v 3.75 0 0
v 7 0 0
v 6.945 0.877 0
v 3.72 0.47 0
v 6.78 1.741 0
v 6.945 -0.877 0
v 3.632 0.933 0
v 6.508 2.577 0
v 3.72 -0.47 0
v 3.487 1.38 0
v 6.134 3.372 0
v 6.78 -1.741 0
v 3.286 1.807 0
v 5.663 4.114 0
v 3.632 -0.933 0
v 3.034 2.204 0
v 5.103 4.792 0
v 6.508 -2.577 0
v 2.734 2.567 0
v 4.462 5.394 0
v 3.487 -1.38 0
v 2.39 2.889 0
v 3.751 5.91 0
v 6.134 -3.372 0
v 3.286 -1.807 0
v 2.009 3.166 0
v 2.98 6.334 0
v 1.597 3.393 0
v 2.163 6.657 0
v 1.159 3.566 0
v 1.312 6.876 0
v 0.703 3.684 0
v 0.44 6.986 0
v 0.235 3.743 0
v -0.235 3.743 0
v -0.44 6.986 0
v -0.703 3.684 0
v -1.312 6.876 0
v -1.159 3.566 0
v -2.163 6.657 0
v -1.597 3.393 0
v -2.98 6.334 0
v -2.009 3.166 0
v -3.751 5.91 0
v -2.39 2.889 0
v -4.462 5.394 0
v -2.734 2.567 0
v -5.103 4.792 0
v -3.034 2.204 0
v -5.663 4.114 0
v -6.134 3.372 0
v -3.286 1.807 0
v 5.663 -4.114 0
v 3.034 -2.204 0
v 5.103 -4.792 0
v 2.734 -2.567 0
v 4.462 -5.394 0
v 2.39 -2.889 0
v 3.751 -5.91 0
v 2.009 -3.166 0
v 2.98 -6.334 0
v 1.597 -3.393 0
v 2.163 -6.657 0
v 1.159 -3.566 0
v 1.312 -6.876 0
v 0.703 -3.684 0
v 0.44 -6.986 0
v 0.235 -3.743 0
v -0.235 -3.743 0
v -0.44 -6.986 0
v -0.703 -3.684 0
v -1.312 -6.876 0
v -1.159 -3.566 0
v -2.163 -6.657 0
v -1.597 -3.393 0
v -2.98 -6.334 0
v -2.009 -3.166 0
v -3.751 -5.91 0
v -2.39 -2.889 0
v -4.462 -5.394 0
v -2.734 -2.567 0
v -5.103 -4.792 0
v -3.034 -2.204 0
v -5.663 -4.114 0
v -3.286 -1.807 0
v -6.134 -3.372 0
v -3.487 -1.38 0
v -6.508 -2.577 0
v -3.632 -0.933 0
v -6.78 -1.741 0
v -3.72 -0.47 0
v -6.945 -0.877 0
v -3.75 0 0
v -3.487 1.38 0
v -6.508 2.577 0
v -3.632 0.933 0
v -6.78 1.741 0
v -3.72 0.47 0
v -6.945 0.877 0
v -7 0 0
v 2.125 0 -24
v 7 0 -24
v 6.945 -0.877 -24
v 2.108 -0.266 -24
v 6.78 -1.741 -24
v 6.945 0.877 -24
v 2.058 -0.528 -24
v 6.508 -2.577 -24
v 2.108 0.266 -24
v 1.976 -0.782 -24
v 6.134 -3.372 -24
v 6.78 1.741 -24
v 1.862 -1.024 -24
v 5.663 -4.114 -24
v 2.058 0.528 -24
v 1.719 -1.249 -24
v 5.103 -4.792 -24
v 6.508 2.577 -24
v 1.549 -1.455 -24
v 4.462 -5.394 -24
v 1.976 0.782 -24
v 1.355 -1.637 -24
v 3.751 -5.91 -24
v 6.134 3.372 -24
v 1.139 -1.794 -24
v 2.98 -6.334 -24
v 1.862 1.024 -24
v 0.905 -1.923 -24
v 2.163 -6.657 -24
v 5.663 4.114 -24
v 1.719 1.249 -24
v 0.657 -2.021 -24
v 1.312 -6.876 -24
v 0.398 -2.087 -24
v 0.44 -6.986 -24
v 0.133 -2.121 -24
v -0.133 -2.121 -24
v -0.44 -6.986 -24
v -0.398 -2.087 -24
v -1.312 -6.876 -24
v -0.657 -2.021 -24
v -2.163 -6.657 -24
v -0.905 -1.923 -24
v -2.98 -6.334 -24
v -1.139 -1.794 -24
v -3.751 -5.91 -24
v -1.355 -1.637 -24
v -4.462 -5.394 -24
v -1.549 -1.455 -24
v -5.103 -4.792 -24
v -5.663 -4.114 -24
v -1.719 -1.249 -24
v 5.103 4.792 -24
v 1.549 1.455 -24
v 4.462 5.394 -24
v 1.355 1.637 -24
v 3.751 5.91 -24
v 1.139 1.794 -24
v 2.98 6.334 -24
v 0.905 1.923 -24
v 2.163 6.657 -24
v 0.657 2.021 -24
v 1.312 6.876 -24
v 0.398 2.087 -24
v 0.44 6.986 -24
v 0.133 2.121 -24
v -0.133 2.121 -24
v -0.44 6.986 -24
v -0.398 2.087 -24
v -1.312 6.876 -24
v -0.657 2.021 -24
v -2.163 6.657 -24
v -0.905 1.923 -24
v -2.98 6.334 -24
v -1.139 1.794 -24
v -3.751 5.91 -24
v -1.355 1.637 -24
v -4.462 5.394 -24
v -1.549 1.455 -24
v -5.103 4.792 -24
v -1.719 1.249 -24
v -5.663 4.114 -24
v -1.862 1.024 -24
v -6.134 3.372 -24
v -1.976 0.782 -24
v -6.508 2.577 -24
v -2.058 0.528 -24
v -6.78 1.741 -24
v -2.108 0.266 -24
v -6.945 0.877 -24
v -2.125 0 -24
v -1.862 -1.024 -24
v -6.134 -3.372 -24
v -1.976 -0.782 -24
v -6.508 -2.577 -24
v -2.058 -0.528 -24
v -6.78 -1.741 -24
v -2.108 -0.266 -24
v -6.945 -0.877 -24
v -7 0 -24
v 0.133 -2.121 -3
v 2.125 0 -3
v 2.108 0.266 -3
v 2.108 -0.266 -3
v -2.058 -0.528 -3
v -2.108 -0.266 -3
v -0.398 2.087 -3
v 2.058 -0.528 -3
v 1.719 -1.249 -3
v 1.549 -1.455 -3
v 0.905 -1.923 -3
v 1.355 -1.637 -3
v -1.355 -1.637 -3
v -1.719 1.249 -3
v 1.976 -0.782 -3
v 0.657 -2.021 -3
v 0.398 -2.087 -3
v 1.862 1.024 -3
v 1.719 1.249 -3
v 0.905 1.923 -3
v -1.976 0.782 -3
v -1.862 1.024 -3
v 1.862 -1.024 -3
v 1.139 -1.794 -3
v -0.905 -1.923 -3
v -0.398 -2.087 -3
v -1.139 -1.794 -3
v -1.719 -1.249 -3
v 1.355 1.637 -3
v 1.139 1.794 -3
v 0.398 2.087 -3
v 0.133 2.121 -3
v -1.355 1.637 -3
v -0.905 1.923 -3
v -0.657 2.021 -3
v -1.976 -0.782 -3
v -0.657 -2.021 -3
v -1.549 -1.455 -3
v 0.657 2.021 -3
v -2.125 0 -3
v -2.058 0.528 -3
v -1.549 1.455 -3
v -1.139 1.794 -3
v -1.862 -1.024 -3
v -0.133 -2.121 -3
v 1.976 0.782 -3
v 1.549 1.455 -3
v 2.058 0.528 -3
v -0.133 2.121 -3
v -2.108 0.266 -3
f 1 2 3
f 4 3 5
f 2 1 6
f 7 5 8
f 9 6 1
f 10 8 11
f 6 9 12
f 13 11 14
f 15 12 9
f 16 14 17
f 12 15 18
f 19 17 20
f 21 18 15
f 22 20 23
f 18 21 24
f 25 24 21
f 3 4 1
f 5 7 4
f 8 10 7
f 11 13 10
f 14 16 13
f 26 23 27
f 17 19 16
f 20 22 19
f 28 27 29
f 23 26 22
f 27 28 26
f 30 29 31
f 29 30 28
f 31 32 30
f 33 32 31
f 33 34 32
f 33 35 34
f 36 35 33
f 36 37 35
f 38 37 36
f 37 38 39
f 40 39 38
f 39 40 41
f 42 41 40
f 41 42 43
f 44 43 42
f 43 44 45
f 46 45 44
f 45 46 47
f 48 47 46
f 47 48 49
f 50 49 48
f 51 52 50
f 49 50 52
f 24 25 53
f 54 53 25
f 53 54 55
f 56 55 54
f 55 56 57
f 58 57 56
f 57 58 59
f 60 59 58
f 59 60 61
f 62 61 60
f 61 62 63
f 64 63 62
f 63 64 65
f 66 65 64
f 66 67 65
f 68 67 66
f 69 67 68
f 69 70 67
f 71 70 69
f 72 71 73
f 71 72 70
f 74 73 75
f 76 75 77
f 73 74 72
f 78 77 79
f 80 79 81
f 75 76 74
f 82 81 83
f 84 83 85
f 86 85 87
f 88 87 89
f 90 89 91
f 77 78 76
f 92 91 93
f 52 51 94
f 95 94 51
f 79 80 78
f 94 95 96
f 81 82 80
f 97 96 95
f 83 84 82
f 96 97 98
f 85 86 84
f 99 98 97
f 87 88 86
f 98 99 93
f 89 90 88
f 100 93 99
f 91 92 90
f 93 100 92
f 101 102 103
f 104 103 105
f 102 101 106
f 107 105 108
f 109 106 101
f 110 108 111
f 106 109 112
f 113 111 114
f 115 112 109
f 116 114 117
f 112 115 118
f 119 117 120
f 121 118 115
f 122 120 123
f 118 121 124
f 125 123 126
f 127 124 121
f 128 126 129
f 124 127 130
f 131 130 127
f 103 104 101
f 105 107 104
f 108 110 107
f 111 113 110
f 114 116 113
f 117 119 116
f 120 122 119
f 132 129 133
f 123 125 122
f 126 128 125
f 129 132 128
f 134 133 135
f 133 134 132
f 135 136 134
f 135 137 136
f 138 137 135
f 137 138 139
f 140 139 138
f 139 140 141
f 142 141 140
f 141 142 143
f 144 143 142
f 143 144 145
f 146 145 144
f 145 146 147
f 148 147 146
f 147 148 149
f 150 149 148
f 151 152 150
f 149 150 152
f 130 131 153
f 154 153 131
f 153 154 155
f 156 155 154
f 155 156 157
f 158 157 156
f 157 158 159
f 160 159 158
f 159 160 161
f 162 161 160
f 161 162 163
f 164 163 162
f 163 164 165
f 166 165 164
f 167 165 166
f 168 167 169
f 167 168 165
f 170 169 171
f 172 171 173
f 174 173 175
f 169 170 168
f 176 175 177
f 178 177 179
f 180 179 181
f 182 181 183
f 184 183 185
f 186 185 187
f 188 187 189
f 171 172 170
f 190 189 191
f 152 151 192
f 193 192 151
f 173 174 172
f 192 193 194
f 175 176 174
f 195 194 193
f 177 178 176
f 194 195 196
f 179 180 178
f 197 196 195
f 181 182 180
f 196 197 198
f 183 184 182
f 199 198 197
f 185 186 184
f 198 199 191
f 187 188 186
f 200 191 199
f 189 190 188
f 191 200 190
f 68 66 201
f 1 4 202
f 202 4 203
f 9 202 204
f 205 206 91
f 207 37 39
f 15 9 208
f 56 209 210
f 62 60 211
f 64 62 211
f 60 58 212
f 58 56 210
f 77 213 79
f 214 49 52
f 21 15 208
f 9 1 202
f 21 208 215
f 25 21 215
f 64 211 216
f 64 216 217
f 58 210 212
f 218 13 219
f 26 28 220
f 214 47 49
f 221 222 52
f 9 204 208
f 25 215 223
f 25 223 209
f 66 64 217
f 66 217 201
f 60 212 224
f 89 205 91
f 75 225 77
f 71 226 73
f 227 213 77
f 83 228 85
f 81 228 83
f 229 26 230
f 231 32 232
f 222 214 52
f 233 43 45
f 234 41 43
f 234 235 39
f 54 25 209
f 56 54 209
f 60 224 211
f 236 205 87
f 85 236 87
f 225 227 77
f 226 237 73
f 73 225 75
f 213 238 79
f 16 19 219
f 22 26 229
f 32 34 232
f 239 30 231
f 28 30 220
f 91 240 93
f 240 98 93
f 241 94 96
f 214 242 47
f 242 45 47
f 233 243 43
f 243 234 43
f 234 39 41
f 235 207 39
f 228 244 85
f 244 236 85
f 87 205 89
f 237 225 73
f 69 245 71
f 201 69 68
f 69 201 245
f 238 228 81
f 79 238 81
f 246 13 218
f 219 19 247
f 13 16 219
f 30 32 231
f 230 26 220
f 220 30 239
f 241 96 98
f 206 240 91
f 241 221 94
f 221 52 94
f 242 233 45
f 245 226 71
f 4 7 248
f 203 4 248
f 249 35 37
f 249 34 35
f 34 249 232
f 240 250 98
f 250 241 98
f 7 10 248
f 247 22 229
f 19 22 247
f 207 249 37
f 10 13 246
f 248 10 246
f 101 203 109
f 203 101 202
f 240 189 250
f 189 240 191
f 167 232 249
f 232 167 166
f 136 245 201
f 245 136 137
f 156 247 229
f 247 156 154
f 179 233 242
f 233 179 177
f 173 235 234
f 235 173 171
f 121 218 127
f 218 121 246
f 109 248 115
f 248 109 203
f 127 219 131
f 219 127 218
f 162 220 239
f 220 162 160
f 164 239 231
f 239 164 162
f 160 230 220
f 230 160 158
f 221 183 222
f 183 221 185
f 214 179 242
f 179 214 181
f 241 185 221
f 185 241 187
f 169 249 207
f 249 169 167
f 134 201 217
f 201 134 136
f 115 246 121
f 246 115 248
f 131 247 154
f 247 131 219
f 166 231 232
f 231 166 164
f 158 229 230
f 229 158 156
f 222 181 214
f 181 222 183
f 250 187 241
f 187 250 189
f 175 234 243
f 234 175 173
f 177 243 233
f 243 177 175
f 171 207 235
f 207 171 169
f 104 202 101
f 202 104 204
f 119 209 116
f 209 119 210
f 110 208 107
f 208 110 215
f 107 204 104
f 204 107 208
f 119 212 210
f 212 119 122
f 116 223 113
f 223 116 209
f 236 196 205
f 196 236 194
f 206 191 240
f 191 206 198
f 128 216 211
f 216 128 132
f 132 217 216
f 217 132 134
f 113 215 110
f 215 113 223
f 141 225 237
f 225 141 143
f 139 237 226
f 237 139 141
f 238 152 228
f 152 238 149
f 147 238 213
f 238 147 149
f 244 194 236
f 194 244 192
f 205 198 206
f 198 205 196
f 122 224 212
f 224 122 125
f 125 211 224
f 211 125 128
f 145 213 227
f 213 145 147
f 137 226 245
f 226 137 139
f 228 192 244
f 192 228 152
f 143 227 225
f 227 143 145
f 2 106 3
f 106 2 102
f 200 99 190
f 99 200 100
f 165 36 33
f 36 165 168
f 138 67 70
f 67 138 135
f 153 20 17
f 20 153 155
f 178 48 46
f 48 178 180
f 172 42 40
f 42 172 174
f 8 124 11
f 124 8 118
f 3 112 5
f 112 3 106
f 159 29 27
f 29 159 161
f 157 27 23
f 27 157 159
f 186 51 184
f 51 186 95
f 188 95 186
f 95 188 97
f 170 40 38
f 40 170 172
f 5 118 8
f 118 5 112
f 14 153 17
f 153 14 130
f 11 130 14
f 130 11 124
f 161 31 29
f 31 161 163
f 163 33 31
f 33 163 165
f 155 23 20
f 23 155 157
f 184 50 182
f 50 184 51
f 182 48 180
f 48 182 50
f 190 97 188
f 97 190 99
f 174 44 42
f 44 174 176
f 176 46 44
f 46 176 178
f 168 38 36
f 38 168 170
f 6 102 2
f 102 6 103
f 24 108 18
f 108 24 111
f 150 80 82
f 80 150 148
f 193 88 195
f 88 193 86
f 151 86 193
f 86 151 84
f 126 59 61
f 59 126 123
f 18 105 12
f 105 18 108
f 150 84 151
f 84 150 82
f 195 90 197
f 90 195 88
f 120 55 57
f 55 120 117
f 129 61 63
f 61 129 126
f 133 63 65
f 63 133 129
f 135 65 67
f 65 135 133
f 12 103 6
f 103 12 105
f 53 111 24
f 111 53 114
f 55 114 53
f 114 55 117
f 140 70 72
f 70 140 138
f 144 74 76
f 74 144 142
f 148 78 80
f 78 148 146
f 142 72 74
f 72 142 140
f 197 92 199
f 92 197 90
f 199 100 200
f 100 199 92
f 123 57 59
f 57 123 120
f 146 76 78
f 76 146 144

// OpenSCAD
$fn = 50;


difference() {
	union() {
		translate(v = [0, 0, -24.0000000000]) {
			cylinder(h = 24, r = 7.0000000000);
		}
	}
	union() {
		translate(v = [0, 0, 0]) {
			rotate(a = [0, 0, 0]) {
				difference() {
					union() {
						#translate(v = [0, 0, -24.0000000000]) {
							cylinder(h = 24, r = 2.0000000000);
						}
						#translate(v = [0, 0, -3]) {
							cylinder(h = 3, r1 = 2.1250000000, r2 = 3.7500000000);
						}
						#translate(v = [0, 0, -24.0000000000]) {
							cylinder(h = 24, r = 2.1250000000);
						}
						#translate(v = [0, 0, -24.0000000000]) {
							cylinder(h = 24, r = 2.0000000000);
						}
					}
					union();
				}
			}
		}
	}
}
